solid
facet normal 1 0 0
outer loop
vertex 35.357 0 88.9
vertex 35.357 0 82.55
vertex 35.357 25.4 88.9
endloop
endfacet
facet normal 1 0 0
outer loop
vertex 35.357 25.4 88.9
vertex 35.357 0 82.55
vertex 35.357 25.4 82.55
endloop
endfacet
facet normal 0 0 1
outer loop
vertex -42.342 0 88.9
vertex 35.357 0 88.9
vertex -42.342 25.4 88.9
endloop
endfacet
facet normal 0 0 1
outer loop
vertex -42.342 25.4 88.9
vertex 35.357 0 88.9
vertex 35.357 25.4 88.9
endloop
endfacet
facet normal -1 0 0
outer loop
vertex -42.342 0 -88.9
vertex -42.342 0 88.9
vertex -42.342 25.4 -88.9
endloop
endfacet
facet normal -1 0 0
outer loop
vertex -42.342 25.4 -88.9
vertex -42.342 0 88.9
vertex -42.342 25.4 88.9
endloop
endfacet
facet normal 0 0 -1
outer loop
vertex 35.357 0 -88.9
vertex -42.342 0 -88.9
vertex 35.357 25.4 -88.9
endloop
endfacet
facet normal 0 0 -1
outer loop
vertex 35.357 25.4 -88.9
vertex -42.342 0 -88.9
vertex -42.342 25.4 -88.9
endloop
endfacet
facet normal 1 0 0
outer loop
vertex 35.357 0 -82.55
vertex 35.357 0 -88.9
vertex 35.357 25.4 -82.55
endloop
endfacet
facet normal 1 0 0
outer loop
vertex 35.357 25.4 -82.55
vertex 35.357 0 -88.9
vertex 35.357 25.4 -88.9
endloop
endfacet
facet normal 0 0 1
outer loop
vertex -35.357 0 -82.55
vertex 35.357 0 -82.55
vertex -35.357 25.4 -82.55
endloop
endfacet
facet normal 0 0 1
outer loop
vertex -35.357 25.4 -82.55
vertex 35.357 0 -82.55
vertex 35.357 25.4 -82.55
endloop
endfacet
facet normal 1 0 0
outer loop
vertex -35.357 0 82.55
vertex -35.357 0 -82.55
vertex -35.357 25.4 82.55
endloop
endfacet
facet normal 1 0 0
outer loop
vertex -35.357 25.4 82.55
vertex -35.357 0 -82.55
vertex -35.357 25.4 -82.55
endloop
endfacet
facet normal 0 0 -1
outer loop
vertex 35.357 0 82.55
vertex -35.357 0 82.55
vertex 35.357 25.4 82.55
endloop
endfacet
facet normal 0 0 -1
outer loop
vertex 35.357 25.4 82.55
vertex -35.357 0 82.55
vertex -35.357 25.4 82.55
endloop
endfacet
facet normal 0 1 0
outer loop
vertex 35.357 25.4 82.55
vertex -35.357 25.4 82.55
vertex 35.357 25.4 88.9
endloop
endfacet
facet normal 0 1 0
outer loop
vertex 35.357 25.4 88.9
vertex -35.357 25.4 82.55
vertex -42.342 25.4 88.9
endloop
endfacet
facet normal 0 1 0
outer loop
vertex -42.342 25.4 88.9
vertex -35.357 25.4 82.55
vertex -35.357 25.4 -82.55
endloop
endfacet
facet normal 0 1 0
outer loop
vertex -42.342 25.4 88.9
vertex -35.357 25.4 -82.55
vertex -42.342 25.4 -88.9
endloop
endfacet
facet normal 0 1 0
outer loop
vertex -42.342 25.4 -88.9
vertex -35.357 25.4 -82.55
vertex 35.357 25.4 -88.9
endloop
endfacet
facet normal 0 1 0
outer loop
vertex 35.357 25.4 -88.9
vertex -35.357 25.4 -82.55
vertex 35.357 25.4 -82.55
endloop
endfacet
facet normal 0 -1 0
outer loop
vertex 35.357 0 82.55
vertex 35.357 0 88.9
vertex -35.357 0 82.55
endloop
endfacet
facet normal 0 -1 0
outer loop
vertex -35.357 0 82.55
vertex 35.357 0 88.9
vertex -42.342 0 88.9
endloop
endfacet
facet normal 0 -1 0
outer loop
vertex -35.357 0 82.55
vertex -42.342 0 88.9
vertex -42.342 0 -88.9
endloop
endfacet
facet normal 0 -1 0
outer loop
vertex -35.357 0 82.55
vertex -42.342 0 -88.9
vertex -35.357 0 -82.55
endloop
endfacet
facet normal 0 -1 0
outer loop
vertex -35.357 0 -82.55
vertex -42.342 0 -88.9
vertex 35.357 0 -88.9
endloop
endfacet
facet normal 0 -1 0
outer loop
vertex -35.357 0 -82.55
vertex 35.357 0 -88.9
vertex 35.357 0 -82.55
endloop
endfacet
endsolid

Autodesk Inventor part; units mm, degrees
ref_plane "YZ Plane" through (0, 0, 0) normal (1, 0, 0) x (0, 1, 0)
ref_plane "XZ Plane" through (0, 0, 0) normal (0, 1, 0) x (-1, 0, 0)
ref_plane "XY Plane" through (0, 0, 0) normal (0, 0, 1) x (1, 0, 0)
sketch "Sketch1" plane through (0, 0, 0) normal (0, 1, 0) x (-1, 0, 0)
  line L0 (-35.3568, 82.55) -> (35.3568, 82.55)
  line L1 (35.3568, 82.55) -> (35.3568, -82.55)
  line L2 (35.3568, -82.55) -> (-35.3568, -82.55)
  line L3 (-35.3568, 82.55) -> (35.3568, -82.55) construction
  line L4 (35.3568, 82.55) -> (-35.3568, -82.55) construction
  line L5 (-35.3568, 88.9) -> (42.3418, 88.9)
  line L6 (42.3418, 88.9) -> (42.3418, -88.9)
  line L7 (42.3418, -88.9) -> (-35.3568, -88.9)
  line L8 (42.3418, 88.9) -> (-35.3568, -88.9) construction
  line L9 (42.3418, -88.9) -> (-35.3568, 88.9) construction
  line L10 (3.4925, 0) -> (42.3418, 0) construction
  line L11 (-35.3568, -88.9) -> (-35.3568, -82.55)
  line L12 (-35.3568, 82.55) -> (-35.3568, 88.9)
  point P0 (0, 0)
  point P1 (35.3568, 0)
  dimension "d1" = 165.1
  dimension "d2" = 177.8
  dimension "d3" = 77.6986
  dimension "d4" = 70.7136
  dimension "d5" = 70.7136
extrude "Extrusion1" add sketch "Sketch1" along normal blind 25.4
properties part number "BoxHolders"
